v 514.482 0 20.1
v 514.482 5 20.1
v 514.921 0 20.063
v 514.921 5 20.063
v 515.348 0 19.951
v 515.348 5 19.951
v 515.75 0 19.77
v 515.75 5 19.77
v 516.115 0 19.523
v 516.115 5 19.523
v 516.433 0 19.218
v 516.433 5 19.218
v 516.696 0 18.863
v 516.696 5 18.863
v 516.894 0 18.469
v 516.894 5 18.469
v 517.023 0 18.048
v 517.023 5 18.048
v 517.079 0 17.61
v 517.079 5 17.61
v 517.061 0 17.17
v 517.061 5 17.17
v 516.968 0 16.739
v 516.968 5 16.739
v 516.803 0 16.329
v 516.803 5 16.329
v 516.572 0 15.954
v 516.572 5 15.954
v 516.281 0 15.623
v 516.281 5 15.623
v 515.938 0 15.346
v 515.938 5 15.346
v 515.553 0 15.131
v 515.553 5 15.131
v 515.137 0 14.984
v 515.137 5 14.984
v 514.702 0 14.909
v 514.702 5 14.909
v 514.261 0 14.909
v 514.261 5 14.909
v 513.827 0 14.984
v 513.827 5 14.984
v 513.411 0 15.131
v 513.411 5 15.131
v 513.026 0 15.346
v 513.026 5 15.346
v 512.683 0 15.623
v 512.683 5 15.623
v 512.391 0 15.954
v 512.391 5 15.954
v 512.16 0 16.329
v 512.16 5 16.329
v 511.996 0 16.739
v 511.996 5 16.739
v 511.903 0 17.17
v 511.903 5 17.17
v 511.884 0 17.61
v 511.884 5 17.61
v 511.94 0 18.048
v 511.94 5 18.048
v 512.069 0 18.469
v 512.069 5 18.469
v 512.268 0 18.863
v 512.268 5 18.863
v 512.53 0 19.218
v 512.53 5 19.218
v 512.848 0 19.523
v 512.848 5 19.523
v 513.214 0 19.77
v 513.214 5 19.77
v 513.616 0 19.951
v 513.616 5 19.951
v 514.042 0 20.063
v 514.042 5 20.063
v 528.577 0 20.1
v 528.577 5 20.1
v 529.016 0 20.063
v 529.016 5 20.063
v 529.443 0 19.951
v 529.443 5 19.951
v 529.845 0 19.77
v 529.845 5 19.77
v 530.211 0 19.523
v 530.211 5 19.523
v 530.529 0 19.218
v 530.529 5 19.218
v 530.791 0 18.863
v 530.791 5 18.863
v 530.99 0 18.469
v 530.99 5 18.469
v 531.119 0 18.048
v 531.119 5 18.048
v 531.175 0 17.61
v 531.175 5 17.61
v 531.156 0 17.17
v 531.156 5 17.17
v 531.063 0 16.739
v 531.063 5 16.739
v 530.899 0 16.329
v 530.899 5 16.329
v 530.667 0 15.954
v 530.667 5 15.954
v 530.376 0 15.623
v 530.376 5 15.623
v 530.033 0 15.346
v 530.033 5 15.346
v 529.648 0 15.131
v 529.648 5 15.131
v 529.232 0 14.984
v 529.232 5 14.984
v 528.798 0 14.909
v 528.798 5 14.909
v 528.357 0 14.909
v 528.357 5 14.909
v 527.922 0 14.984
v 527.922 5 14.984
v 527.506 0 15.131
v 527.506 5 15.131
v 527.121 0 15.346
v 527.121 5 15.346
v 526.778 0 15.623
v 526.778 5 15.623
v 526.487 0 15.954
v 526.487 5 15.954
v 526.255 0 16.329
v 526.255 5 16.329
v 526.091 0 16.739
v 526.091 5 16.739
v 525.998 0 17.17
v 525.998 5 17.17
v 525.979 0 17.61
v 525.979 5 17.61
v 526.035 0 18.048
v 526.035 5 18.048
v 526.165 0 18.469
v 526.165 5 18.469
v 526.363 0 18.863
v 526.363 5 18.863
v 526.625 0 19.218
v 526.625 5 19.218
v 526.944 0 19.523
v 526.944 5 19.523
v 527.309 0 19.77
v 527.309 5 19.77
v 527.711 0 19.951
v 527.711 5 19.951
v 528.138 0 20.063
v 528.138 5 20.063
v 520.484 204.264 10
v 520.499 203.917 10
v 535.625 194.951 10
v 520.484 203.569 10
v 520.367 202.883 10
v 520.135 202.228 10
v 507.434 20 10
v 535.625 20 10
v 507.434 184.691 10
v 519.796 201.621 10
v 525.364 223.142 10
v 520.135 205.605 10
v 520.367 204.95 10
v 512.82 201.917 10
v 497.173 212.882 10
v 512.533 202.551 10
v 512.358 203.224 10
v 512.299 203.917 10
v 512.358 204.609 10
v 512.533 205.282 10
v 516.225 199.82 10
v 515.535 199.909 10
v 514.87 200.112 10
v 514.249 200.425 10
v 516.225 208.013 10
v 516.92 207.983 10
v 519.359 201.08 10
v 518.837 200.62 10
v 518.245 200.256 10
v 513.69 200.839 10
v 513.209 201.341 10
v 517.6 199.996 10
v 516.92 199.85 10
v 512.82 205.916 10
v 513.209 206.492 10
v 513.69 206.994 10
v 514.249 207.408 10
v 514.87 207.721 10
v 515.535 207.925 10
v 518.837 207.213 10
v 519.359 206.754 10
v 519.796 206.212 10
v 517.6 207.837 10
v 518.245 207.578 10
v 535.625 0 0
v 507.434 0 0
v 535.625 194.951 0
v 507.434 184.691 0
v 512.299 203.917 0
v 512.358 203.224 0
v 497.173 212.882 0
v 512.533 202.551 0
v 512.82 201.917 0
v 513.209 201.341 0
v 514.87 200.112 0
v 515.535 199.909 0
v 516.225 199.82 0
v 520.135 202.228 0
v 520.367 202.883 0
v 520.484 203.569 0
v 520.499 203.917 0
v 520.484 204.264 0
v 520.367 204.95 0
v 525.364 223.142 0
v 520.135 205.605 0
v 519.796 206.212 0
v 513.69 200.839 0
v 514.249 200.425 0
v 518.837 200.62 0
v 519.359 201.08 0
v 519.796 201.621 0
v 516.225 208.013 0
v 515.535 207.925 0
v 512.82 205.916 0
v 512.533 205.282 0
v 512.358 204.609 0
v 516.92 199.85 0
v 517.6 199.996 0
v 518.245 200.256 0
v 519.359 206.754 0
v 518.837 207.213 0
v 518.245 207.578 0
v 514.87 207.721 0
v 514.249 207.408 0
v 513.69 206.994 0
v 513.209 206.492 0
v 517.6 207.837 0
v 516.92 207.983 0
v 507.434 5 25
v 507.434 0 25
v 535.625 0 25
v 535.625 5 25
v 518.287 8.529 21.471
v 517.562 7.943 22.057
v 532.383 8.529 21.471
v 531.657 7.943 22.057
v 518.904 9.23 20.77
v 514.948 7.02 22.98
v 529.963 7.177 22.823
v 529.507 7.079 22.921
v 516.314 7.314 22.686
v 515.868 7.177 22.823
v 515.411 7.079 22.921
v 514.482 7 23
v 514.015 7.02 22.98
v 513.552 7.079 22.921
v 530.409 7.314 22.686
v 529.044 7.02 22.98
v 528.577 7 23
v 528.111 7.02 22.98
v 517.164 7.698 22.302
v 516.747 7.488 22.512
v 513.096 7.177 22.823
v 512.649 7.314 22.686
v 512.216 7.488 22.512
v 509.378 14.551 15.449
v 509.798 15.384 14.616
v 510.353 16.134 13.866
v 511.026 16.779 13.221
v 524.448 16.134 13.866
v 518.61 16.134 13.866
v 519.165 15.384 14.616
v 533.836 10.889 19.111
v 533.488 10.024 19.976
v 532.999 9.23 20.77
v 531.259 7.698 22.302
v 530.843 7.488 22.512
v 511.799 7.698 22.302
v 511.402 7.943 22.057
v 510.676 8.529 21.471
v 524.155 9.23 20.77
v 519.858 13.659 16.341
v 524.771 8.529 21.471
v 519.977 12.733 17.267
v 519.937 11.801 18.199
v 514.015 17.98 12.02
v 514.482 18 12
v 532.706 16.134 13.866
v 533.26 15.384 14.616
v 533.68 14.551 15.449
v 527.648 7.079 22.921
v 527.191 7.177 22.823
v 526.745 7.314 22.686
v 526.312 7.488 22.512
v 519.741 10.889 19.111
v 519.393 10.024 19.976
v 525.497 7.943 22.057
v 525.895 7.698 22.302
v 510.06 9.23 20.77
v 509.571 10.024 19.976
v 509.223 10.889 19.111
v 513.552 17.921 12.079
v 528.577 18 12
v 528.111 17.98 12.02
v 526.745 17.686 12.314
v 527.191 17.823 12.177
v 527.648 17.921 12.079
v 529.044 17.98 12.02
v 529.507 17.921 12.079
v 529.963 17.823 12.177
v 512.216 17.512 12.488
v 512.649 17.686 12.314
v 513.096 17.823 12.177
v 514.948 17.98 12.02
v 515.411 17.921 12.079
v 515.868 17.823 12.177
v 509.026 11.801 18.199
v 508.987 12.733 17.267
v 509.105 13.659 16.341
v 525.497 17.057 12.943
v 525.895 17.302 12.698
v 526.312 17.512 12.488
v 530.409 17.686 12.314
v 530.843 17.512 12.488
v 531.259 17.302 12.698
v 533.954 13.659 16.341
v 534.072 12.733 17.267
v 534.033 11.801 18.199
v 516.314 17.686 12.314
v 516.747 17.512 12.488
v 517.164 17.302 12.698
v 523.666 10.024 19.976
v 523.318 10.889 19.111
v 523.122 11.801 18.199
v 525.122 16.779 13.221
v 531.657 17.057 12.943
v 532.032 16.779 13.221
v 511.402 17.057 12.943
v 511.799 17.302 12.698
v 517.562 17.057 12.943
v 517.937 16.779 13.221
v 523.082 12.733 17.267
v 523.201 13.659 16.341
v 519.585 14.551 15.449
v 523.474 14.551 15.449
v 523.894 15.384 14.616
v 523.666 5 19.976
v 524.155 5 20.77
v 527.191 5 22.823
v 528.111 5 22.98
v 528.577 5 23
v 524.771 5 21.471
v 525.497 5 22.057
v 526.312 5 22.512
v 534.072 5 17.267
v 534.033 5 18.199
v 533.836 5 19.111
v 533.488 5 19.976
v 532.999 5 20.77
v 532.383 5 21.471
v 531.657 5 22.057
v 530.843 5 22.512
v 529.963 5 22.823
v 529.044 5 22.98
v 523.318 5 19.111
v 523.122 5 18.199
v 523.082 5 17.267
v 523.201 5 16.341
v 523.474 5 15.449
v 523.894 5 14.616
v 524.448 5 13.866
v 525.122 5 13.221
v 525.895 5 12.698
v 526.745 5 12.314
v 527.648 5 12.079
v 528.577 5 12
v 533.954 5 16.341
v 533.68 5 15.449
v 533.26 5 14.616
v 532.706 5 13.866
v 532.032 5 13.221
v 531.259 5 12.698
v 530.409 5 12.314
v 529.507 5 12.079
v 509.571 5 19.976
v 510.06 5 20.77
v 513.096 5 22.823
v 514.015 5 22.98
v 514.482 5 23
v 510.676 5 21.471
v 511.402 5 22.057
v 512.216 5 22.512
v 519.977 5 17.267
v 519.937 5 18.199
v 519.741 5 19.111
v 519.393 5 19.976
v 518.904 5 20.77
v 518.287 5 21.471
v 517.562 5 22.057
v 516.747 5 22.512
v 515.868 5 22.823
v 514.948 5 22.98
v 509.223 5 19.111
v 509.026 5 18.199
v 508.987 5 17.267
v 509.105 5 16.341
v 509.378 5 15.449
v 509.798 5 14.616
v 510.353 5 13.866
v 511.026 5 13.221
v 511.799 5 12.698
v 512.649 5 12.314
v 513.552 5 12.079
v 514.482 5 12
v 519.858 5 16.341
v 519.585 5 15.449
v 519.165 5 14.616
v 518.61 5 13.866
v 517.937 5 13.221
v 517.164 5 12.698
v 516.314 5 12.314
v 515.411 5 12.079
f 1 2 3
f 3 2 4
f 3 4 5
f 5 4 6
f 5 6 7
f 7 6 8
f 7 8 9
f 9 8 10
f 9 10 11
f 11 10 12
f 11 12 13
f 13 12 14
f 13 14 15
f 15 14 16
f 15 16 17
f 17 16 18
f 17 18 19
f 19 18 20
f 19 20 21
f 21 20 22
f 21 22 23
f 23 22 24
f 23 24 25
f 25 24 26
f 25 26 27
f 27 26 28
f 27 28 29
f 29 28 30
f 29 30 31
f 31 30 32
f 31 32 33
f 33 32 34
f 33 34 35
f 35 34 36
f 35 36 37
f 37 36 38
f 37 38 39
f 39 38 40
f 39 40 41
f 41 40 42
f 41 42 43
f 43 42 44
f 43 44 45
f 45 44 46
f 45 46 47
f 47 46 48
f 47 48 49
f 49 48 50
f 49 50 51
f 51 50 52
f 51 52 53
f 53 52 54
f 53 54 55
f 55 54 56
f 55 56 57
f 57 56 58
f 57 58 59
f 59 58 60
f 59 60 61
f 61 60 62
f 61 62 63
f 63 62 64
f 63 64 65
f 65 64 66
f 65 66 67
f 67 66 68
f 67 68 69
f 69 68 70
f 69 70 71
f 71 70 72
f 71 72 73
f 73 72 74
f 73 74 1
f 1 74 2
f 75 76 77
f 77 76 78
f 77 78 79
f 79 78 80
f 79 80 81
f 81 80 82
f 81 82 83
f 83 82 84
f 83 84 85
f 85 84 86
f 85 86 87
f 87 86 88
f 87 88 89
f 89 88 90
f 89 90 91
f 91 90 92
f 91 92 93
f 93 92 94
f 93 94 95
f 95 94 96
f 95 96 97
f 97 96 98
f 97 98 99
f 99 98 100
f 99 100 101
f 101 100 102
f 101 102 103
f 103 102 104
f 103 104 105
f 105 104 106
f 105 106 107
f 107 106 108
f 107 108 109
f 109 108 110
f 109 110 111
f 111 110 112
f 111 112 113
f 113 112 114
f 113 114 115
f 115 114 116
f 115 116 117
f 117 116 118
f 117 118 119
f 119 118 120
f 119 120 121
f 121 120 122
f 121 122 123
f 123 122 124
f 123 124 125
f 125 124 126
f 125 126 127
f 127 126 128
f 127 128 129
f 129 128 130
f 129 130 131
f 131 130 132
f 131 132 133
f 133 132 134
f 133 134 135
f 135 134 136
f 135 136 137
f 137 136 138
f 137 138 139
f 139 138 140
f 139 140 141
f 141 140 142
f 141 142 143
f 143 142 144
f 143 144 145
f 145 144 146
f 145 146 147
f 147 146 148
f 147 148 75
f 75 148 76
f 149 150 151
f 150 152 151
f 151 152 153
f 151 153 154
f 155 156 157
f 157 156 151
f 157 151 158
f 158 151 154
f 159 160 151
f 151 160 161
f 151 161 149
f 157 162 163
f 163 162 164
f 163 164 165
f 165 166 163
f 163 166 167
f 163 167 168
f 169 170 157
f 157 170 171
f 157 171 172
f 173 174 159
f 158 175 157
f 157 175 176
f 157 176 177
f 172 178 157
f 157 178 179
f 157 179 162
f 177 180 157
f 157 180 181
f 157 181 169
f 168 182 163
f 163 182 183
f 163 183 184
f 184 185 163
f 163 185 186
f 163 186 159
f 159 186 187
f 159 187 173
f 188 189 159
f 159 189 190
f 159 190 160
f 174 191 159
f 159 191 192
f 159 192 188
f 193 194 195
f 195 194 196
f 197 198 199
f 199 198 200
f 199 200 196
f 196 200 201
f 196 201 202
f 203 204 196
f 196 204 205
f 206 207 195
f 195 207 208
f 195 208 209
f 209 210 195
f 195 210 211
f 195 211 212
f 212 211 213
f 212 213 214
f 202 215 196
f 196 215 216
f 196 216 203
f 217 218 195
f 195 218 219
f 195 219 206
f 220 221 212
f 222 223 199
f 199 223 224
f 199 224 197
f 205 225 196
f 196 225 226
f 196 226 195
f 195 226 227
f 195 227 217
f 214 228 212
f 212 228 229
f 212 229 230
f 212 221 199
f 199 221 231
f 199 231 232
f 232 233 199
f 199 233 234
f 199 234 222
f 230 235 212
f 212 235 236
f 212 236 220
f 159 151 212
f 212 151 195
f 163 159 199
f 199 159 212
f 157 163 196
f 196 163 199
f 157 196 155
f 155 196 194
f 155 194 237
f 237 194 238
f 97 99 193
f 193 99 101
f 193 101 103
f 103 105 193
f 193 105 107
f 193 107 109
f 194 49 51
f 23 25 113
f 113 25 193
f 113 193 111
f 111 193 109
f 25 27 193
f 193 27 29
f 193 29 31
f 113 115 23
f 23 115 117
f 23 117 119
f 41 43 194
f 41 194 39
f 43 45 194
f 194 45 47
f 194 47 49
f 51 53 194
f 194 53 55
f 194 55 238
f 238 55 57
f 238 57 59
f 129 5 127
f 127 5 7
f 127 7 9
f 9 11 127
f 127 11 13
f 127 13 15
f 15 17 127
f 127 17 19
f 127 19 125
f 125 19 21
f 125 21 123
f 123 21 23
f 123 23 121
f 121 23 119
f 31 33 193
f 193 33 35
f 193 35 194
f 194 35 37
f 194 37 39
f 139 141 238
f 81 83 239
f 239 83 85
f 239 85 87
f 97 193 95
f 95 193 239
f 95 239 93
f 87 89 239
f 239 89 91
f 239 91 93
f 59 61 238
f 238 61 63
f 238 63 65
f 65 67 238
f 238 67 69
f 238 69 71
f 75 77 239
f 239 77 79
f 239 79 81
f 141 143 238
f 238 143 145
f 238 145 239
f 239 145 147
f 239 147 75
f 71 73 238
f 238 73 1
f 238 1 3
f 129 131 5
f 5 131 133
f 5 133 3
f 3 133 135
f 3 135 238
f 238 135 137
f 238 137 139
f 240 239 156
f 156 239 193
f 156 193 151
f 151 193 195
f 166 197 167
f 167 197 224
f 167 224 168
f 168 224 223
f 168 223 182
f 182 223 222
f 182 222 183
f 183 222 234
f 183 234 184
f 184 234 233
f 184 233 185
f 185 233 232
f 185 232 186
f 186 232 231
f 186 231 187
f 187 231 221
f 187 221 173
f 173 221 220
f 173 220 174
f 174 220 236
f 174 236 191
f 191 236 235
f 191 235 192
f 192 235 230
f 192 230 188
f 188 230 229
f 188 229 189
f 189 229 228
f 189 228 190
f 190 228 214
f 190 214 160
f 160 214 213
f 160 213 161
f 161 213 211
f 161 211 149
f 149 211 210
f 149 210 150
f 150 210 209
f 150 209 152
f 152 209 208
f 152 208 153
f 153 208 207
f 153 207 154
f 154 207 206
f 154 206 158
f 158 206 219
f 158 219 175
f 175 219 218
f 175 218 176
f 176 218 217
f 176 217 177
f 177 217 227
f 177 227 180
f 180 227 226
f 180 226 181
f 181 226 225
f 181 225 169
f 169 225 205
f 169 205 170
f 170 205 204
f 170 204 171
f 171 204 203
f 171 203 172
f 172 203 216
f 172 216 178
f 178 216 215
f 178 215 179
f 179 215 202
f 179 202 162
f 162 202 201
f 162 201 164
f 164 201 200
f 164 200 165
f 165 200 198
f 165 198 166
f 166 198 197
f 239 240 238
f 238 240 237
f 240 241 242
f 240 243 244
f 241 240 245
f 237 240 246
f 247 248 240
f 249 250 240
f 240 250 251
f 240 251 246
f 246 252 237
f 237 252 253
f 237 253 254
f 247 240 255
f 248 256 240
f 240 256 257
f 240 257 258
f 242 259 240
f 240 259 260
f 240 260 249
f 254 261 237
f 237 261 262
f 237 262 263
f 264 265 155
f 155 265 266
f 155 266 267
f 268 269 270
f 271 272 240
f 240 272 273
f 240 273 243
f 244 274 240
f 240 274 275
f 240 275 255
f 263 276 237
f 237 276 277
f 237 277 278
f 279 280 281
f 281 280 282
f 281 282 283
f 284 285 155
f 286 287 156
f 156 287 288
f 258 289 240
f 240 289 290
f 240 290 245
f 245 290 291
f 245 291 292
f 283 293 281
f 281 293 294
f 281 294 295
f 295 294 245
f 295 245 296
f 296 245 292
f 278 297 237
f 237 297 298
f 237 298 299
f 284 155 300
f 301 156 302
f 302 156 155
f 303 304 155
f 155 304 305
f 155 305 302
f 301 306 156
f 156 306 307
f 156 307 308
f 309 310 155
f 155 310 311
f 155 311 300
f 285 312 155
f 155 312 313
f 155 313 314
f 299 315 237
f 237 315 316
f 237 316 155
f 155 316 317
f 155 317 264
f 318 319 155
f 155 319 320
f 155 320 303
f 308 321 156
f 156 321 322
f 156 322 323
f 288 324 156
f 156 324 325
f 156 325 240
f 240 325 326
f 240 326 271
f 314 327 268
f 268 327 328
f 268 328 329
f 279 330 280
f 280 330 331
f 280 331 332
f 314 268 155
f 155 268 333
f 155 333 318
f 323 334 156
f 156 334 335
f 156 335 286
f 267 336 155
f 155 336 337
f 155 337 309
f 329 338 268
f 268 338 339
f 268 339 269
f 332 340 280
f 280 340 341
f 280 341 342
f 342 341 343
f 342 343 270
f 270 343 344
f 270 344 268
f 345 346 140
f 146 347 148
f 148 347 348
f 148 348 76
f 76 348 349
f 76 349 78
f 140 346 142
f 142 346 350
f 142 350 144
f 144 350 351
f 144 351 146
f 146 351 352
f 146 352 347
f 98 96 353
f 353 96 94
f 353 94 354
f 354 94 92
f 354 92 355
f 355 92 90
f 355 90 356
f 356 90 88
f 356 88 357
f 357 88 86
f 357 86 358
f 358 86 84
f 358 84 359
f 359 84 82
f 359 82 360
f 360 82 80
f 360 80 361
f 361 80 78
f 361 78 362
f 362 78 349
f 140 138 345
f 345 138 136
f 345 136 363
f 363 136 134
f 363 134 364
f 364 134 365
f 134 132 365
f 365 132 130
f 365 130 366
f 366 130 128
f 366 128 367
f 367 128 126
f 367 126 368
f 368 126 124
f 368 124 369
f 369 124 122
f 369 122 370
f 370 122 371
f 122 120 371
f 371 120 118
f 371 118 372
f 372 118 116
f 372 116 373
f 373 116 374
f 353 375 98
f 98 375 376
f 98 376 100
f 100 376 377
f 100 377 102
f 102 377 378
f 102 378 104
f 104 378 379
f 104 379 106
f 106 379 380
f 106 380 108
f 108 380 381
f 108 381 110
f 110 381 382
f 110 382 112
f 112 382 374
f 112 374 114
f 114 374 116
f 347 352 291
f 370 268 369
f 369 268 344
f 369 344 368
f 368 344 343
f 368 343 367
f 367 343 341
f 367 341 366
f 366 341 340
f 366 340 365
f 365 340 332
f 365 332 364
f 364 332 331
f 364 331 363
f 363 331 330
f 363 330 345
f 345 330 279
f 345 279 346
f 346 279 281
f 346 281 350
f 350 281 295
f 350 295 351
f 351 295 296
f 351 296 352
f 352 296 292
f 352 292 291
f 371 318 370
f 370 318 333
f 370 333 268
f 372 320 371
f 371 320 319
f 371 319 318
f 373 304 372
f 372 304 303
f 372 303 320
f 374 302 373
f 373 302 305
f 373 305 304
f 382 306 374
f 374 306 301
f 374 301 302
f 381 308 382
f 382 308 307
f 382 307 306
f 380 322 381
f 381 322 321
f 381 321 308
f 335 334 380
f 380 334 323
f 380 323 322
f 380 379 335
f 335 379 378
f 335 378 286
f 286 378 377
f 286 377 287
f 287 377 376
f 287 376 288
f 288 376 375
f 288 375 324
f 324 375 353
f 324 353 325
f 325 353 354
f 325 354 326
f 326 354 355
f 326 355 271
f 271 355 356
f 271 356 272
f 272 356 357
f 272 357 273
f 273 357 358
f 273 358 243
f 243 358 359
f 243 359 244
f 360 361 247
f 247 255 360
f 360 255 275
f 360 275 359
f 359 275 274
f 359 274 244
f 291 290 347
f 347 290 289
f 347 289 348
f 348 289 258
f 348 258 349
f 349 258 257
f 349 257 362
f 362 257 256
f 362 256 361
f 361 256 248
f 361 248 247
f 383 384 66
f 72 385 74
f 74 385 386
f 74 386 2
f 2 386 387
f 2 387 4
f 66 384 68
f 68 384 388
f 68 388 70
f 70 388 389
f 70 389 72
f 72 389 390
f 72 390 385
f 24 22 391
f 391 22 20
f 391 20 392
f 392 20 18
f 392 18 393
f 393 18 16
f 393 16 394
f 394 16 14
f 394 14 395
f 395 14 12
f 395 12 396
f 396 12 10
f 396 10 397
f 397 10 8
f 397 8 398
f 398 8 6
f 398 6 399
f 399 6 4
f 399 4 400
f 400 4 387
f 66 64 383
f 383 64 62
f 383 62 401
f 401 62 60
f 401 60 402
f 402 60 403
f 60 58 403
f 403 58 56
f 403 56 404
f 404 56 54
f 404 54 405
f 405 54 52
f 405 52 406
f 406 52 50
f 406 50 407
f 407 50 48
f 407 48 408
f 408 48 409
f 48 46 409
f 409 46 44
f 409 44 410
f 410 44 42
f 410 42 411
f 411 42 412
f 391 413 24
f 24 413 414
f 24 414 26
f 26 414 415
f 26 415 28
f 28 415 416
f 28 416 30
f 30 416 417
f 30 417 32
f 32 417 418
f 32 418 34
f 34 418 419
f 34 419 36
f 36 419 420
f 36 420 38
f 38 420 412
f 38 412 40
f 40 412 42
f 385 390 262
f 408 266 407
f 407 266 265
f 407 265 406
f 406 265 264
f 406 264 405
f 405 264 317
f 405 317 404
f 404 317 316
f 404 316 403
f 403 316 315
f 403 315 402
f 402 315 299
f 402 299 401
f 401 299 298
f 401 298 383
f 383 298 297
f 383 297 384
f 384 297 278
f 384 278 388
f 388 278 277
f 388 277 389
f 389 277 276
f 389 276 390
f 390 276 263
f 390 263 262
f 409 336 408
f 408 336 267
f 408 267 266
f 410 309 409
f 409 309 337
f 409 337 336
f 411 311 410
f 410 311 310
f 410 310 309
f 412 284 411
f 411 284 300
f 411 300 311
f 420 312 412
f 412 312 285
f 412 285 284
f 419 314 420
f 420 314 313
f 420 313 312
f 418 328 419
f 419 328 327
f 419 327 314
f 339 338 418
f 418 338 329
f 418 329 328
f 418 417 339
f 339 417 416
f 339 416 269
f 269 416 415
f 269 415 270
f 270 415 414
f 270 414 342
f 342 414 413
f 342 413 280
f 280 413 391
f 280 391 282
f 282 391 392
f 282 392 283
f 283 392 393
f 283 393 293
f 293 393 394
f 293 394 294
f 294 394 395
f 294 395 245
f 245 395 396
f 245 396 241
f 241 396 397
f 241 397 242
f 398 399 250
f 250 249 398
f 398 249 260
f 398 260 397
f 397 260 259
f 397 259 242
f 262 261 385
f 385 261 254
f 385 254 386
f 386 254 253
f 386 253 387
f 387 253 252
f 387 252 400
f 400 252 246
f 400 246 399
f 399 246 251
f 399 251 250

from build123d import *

# Parameters (mm, degrees)
SKETCH1_R           = 4.1
BOSS_EXTRUDE1_DEPTH = 10
SKETCH2_W           = 28.190778624
SKETCH2_H           = 5
BOSS_EXTRUDE2_DEPTH = 15
SKETCH4_R           = 2.6
CUT_EXTRUDE1_DEPTH  = 20
CHAMFER1_SIZE       = 15
SKETCH5_R           = 5.5
CUT_EXTRUDE2_DEPTH  = 20


with BuildPart() as part:
    # Sketch1 → Boss-Extrude1 (new body)
    with BuildSketch(Plane.XY):
        Polygon((535.624793848, 194.951481696), (535.624793848, 0), (507.434015224, 0), (507.434015224, 184.690877396), (497.173410925, 212.881656019), (525.364189548, 223.142260319), align=None)
        with Locations((516.399102386, 203.916568858)):
            Circle(SKETCH1_R, mode=Mode.SUBTRACT)
    extrude(amount=BOSS_EXTRUDE1_DEPTH)

    # Sketch2 → Boss-Extrude2 (add)
    with BuildSketch(Plane.XY.offset(10)):
        with Locations((521.529404536, 2.5)):
            Rectangle(SKETCH2_W, SKETCH2_H)
    extrude(amount=BOSS_EXTRUDE2_DEPTH)

    # Sketch4 → Cut-Extrude1 (cut)
    with BuildSketch(Plane(origin=(0, 5, 0), x_dir=(1, 0, 0), z_dir=(0, 1, 0))):
        with Locations(Location((528.577099192, -17.5, 0), (0, 0, 270))):
            Circle(SKETCH4_R)
        with Locations(Location((514.48170988, -17.5, 0), (0, 0, 270))):
            Circle(SKETCH4_R)
    extrude(amount=-CUT_EXTRUDE1_DEPTH, mode=Mode.SUBTRACT)

    # Chamfer1
    # the kernel refuses this chamfer: 15 mm, written as the material it adds along each edge
    with BuildSketch(Plane(origin=(535.624793848, 5, 10), x_dir=(0, 0.9996219169112968, -0.02749587661058632), z_dir=(-1, 0, 0))) as chamfer1_piece_1_section:
        Polygon((CHAMFER1_SIZE * 0.999621916911, -CHAMFER1_SIZE * 0.0274958766106), (-CHAMFER1_SIZE * 0.0274958766106, -CHAMFER1_SIZE * 0.999621916911), (0, 0), align=None)
    chamfer1_piece_1 = extrude(amount=28.190778624, mode=Mode.PRIVATE)
    chamfer1_piece_1 = split(chamfer1_piece_1, bisect_by=Plane(origin=(521.529400048, 10.087187588, 25), z_dir=(0, 0, -1)), keep=Keep.TOP, mode=Mode.PRIVATE)
    chamfer1_piece_1 = chamfer1_piece_1 - Plane(origin=(528.577099192, 10.087187588, 17.5), x_dir=(0, 0, 1), z_dir=(0, 1, 0)) * Cylinder(2.6, 117, mode=Mode.PRIVATE)
    chamfer1_piece_1 = chamfer1_piece_1 - Plane(origin=(514.48170988, 10.087187588, 17.5), x_dir=(0, 0, 1), z_dir=(0, 1, 0)) * Cylinder(2.6, 117, mode=Mode.PRIVATE)
    add(chamfer1_piece_1)

    # Sketch5 → Cut-Extrude2 (cut)
    with BuildSketch(Plane(origin=(0, 5, 0), x_dir=(1, 0, 0), z_dir=(0, 1, 0))):
        with Locations(Location((514.48170988, -17.5, 0), (0, 0, 270))):
            Circle(SKETCH5_R)
        with Locations(Location((528.577099192, -17.5, 0), (0, 0, 270))):
            Circle(SKETCH5_R)
    extrude(amount=CUT_EXTRUDE2_DEPTH, mode=Mode.SUBTRACT)


solid = part.part
